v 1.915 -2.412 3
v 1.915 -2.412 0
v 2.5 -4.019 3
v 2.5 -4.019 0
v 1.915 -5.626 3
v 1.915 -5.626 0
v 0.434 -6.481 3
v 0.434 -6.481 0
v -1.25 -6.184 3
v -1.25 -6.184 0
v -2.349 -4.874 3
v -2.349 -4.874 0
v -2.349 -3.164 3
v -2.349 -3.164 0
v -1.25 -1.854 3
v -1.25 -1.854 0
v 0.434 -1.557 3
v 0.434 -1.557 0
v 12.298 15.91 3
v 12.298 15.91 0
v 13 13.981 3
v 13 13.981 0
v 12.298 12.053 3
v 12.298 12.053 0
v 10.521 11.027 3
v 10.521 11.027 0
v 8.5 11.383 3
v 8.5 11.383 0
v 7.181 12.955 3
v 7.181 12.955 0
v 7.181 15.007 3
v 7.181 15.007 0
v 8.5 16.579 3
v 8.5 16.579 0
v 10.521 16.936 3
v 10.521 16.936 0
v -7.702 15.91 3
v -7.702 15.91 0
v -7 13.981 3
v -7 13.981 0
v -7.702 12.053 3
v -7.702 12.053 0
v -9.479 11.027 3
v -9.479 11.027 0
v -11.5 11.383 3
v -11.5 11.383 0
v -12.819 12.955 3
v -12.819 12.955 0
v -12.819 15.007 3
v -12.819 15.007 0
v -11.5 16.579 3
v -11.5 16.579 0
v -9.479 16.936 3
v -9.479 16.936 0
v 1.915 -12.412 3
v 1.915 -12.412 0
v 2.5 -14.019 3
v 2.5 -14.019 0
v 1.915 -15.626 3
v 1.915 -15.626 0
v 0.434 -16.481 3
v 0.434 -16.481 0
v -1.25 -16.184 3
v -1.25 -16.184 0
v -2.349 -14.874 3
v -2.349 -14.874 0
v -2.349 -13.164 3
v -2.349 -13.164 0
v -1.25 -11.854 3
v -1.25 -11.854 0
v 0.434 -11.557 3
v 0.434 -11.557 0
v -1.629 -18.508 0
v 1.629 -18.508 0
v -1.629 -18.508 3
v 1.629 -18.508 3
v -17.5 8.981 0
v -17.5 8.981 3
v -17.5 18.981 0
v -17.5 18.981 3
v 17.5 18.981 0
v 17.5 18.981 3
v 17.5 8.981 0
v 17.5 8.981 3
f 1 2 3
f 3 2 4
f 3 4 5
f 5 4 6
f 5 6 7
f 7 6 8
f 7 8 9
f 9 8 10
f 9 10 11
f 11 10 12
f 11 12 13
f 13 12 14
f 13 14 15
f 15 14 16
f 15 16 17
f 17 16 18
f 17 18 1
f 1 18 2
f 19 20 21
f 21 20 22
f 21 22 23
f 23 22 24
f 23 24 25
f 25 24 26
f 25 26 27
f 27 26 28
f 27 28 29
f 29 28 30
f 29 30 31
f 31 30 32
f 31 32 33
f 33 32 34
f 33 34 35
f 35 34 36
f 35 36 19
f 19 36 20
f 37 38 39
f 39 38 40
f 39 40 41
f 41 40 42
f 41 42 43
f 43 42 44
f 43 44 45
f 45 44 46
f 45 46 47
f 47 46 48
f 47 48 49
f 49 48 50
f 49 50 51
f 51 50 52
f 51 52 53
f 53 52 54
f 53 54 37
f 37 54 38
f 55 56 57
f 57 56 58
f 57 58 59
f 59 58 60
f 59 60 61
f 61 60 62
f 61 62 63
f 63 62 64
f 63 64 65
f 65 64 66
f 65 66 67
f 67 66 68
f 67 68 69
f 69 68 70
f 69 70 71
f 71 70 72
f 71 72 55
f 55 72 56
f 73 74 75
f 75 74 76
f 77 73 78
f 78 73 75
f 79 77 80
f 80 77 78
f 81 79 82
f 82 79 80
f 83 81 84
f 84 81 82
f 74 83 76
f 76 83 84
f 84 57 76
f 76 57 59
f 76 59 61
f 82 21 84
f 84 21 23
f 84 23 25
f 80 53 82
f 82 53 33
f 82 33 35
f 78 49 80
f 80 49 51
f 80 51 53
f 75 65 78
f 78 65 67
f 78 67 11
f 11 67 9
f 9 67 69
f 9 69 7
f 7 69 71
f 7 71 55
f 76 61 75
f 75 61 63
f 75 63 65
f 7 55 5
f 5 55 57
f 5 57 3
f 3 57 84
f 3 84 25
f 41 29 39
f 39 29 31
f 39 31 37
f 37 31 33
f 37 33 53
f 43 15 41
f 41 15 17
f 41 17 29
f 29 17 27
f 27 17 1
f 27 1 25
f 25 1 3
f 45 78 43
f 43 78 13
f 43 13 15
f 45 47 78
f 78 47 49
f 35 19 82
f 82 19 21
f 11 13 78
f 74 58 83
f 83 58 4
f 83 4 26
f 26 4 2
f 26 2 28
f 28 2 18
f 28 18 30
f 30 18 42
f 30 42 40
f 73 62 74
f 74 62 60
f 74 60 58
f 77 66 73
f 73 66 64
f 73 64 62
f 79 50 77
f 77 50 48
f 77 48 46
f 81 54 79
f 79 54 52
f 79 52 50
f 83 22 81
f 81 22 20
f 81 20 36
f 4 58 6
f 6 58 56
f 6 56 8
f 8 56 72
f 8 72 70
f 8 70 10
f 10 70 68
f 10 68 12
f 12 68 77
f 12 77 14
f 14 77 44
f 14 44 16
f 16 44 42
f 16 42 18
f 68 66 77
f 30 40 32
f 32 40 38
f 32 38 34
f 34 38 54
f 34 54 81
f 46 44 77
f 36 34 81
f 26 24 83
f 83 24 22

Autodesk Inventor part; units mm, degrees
ref_plane "YZ Plane" through (0, 0, 0) normal (1, 0, 0) x (0, 1, 0)
sketch "Sketch1" plane through (0, 0, 0) normal (0, 0, 1) x (1, 0, 0)
  circle A0 centre (-10, 13.9812) radius 3
  circle A1 centre (10, 13.9812) radius 3
  circle A2 centre (0, -4.0188) radius 2.5
  circle A3 centre (0, -14.0188) radius 2.5
  line L0 (-1.6291, -18.508) -> (1.6291, -18.508)
  line L1 (-17.5, 8.9812) -> (-1.6291, -18.508)
  line L2 (-17.5, 8.9812) -> (17.1989, 8.9812) construction
  line L3 (17.5, 8.9812) -> (1.6291, -18.508)
  line L4 (17.5, 8.9812) -> (62.1106, 8.9812) construction
  line L5 (-17.5, 8.9812) -> (-17.5, 18.9812)
  line L6 (-17.5, 18.9812) -> (17.5, 18.9812)
  line L7 (17.5, 18.9812) -> (17.5, 8.9812)
  point P0 (0, -18.508)
  dimension "d1" = 5
  dimension "d2" = 10
  dimension "d3" = 6
  dimension "d4" = 10
  dimension "d5" = 60
  dimension "d10" = 35
  dimension "d11" = 17.5
  dimension "d13" = 3.2582
  dimension "d17" = 120
  dimension "d20" = 10
  dimension "d22" = 23
  dimension "d26" = 5
extrude "Extrusion1" add sketch "Sketch1" along normal blind 3
ref_plane "Work Plane4" through (-10, 13.9812, 0) normal (1, 0, 0) x (0, 0, -1)
ref_plane "Work Plane1" through (-13, 13.9812, 0) normal (-1, 0, 0) x (0, 0, 1)
ref_plane "Work Plane3" through (-7, 13.9812, 0) normal (1, 0, 0) x (0, 0, -1)
mirror "Mirror1" about plane through (0, 0, 0) normal (1, 0, 0)
ref_plane "Work Plane10" through (-10, 16.9812, 0) normal (0, 1, 0) x (1, 0, 0)
ref_plane "Work Plane12" through (-10, 14.4812, 0) normal (0, 1, 0) x (1, 0, 0)
ref_plane "Work Plane11" through (-10, 11.9812, 0) normal (0, 1, 0) x (1, 0, 0)
ref_plane "Work Plane5" through (10, 13.9812, 0) normal (1, 0, 0) x (0, 0, -1)
equation "\"d11\" = 0.5 * d10"
properties part number "Load Cell Connector to Extrusion Bar"
